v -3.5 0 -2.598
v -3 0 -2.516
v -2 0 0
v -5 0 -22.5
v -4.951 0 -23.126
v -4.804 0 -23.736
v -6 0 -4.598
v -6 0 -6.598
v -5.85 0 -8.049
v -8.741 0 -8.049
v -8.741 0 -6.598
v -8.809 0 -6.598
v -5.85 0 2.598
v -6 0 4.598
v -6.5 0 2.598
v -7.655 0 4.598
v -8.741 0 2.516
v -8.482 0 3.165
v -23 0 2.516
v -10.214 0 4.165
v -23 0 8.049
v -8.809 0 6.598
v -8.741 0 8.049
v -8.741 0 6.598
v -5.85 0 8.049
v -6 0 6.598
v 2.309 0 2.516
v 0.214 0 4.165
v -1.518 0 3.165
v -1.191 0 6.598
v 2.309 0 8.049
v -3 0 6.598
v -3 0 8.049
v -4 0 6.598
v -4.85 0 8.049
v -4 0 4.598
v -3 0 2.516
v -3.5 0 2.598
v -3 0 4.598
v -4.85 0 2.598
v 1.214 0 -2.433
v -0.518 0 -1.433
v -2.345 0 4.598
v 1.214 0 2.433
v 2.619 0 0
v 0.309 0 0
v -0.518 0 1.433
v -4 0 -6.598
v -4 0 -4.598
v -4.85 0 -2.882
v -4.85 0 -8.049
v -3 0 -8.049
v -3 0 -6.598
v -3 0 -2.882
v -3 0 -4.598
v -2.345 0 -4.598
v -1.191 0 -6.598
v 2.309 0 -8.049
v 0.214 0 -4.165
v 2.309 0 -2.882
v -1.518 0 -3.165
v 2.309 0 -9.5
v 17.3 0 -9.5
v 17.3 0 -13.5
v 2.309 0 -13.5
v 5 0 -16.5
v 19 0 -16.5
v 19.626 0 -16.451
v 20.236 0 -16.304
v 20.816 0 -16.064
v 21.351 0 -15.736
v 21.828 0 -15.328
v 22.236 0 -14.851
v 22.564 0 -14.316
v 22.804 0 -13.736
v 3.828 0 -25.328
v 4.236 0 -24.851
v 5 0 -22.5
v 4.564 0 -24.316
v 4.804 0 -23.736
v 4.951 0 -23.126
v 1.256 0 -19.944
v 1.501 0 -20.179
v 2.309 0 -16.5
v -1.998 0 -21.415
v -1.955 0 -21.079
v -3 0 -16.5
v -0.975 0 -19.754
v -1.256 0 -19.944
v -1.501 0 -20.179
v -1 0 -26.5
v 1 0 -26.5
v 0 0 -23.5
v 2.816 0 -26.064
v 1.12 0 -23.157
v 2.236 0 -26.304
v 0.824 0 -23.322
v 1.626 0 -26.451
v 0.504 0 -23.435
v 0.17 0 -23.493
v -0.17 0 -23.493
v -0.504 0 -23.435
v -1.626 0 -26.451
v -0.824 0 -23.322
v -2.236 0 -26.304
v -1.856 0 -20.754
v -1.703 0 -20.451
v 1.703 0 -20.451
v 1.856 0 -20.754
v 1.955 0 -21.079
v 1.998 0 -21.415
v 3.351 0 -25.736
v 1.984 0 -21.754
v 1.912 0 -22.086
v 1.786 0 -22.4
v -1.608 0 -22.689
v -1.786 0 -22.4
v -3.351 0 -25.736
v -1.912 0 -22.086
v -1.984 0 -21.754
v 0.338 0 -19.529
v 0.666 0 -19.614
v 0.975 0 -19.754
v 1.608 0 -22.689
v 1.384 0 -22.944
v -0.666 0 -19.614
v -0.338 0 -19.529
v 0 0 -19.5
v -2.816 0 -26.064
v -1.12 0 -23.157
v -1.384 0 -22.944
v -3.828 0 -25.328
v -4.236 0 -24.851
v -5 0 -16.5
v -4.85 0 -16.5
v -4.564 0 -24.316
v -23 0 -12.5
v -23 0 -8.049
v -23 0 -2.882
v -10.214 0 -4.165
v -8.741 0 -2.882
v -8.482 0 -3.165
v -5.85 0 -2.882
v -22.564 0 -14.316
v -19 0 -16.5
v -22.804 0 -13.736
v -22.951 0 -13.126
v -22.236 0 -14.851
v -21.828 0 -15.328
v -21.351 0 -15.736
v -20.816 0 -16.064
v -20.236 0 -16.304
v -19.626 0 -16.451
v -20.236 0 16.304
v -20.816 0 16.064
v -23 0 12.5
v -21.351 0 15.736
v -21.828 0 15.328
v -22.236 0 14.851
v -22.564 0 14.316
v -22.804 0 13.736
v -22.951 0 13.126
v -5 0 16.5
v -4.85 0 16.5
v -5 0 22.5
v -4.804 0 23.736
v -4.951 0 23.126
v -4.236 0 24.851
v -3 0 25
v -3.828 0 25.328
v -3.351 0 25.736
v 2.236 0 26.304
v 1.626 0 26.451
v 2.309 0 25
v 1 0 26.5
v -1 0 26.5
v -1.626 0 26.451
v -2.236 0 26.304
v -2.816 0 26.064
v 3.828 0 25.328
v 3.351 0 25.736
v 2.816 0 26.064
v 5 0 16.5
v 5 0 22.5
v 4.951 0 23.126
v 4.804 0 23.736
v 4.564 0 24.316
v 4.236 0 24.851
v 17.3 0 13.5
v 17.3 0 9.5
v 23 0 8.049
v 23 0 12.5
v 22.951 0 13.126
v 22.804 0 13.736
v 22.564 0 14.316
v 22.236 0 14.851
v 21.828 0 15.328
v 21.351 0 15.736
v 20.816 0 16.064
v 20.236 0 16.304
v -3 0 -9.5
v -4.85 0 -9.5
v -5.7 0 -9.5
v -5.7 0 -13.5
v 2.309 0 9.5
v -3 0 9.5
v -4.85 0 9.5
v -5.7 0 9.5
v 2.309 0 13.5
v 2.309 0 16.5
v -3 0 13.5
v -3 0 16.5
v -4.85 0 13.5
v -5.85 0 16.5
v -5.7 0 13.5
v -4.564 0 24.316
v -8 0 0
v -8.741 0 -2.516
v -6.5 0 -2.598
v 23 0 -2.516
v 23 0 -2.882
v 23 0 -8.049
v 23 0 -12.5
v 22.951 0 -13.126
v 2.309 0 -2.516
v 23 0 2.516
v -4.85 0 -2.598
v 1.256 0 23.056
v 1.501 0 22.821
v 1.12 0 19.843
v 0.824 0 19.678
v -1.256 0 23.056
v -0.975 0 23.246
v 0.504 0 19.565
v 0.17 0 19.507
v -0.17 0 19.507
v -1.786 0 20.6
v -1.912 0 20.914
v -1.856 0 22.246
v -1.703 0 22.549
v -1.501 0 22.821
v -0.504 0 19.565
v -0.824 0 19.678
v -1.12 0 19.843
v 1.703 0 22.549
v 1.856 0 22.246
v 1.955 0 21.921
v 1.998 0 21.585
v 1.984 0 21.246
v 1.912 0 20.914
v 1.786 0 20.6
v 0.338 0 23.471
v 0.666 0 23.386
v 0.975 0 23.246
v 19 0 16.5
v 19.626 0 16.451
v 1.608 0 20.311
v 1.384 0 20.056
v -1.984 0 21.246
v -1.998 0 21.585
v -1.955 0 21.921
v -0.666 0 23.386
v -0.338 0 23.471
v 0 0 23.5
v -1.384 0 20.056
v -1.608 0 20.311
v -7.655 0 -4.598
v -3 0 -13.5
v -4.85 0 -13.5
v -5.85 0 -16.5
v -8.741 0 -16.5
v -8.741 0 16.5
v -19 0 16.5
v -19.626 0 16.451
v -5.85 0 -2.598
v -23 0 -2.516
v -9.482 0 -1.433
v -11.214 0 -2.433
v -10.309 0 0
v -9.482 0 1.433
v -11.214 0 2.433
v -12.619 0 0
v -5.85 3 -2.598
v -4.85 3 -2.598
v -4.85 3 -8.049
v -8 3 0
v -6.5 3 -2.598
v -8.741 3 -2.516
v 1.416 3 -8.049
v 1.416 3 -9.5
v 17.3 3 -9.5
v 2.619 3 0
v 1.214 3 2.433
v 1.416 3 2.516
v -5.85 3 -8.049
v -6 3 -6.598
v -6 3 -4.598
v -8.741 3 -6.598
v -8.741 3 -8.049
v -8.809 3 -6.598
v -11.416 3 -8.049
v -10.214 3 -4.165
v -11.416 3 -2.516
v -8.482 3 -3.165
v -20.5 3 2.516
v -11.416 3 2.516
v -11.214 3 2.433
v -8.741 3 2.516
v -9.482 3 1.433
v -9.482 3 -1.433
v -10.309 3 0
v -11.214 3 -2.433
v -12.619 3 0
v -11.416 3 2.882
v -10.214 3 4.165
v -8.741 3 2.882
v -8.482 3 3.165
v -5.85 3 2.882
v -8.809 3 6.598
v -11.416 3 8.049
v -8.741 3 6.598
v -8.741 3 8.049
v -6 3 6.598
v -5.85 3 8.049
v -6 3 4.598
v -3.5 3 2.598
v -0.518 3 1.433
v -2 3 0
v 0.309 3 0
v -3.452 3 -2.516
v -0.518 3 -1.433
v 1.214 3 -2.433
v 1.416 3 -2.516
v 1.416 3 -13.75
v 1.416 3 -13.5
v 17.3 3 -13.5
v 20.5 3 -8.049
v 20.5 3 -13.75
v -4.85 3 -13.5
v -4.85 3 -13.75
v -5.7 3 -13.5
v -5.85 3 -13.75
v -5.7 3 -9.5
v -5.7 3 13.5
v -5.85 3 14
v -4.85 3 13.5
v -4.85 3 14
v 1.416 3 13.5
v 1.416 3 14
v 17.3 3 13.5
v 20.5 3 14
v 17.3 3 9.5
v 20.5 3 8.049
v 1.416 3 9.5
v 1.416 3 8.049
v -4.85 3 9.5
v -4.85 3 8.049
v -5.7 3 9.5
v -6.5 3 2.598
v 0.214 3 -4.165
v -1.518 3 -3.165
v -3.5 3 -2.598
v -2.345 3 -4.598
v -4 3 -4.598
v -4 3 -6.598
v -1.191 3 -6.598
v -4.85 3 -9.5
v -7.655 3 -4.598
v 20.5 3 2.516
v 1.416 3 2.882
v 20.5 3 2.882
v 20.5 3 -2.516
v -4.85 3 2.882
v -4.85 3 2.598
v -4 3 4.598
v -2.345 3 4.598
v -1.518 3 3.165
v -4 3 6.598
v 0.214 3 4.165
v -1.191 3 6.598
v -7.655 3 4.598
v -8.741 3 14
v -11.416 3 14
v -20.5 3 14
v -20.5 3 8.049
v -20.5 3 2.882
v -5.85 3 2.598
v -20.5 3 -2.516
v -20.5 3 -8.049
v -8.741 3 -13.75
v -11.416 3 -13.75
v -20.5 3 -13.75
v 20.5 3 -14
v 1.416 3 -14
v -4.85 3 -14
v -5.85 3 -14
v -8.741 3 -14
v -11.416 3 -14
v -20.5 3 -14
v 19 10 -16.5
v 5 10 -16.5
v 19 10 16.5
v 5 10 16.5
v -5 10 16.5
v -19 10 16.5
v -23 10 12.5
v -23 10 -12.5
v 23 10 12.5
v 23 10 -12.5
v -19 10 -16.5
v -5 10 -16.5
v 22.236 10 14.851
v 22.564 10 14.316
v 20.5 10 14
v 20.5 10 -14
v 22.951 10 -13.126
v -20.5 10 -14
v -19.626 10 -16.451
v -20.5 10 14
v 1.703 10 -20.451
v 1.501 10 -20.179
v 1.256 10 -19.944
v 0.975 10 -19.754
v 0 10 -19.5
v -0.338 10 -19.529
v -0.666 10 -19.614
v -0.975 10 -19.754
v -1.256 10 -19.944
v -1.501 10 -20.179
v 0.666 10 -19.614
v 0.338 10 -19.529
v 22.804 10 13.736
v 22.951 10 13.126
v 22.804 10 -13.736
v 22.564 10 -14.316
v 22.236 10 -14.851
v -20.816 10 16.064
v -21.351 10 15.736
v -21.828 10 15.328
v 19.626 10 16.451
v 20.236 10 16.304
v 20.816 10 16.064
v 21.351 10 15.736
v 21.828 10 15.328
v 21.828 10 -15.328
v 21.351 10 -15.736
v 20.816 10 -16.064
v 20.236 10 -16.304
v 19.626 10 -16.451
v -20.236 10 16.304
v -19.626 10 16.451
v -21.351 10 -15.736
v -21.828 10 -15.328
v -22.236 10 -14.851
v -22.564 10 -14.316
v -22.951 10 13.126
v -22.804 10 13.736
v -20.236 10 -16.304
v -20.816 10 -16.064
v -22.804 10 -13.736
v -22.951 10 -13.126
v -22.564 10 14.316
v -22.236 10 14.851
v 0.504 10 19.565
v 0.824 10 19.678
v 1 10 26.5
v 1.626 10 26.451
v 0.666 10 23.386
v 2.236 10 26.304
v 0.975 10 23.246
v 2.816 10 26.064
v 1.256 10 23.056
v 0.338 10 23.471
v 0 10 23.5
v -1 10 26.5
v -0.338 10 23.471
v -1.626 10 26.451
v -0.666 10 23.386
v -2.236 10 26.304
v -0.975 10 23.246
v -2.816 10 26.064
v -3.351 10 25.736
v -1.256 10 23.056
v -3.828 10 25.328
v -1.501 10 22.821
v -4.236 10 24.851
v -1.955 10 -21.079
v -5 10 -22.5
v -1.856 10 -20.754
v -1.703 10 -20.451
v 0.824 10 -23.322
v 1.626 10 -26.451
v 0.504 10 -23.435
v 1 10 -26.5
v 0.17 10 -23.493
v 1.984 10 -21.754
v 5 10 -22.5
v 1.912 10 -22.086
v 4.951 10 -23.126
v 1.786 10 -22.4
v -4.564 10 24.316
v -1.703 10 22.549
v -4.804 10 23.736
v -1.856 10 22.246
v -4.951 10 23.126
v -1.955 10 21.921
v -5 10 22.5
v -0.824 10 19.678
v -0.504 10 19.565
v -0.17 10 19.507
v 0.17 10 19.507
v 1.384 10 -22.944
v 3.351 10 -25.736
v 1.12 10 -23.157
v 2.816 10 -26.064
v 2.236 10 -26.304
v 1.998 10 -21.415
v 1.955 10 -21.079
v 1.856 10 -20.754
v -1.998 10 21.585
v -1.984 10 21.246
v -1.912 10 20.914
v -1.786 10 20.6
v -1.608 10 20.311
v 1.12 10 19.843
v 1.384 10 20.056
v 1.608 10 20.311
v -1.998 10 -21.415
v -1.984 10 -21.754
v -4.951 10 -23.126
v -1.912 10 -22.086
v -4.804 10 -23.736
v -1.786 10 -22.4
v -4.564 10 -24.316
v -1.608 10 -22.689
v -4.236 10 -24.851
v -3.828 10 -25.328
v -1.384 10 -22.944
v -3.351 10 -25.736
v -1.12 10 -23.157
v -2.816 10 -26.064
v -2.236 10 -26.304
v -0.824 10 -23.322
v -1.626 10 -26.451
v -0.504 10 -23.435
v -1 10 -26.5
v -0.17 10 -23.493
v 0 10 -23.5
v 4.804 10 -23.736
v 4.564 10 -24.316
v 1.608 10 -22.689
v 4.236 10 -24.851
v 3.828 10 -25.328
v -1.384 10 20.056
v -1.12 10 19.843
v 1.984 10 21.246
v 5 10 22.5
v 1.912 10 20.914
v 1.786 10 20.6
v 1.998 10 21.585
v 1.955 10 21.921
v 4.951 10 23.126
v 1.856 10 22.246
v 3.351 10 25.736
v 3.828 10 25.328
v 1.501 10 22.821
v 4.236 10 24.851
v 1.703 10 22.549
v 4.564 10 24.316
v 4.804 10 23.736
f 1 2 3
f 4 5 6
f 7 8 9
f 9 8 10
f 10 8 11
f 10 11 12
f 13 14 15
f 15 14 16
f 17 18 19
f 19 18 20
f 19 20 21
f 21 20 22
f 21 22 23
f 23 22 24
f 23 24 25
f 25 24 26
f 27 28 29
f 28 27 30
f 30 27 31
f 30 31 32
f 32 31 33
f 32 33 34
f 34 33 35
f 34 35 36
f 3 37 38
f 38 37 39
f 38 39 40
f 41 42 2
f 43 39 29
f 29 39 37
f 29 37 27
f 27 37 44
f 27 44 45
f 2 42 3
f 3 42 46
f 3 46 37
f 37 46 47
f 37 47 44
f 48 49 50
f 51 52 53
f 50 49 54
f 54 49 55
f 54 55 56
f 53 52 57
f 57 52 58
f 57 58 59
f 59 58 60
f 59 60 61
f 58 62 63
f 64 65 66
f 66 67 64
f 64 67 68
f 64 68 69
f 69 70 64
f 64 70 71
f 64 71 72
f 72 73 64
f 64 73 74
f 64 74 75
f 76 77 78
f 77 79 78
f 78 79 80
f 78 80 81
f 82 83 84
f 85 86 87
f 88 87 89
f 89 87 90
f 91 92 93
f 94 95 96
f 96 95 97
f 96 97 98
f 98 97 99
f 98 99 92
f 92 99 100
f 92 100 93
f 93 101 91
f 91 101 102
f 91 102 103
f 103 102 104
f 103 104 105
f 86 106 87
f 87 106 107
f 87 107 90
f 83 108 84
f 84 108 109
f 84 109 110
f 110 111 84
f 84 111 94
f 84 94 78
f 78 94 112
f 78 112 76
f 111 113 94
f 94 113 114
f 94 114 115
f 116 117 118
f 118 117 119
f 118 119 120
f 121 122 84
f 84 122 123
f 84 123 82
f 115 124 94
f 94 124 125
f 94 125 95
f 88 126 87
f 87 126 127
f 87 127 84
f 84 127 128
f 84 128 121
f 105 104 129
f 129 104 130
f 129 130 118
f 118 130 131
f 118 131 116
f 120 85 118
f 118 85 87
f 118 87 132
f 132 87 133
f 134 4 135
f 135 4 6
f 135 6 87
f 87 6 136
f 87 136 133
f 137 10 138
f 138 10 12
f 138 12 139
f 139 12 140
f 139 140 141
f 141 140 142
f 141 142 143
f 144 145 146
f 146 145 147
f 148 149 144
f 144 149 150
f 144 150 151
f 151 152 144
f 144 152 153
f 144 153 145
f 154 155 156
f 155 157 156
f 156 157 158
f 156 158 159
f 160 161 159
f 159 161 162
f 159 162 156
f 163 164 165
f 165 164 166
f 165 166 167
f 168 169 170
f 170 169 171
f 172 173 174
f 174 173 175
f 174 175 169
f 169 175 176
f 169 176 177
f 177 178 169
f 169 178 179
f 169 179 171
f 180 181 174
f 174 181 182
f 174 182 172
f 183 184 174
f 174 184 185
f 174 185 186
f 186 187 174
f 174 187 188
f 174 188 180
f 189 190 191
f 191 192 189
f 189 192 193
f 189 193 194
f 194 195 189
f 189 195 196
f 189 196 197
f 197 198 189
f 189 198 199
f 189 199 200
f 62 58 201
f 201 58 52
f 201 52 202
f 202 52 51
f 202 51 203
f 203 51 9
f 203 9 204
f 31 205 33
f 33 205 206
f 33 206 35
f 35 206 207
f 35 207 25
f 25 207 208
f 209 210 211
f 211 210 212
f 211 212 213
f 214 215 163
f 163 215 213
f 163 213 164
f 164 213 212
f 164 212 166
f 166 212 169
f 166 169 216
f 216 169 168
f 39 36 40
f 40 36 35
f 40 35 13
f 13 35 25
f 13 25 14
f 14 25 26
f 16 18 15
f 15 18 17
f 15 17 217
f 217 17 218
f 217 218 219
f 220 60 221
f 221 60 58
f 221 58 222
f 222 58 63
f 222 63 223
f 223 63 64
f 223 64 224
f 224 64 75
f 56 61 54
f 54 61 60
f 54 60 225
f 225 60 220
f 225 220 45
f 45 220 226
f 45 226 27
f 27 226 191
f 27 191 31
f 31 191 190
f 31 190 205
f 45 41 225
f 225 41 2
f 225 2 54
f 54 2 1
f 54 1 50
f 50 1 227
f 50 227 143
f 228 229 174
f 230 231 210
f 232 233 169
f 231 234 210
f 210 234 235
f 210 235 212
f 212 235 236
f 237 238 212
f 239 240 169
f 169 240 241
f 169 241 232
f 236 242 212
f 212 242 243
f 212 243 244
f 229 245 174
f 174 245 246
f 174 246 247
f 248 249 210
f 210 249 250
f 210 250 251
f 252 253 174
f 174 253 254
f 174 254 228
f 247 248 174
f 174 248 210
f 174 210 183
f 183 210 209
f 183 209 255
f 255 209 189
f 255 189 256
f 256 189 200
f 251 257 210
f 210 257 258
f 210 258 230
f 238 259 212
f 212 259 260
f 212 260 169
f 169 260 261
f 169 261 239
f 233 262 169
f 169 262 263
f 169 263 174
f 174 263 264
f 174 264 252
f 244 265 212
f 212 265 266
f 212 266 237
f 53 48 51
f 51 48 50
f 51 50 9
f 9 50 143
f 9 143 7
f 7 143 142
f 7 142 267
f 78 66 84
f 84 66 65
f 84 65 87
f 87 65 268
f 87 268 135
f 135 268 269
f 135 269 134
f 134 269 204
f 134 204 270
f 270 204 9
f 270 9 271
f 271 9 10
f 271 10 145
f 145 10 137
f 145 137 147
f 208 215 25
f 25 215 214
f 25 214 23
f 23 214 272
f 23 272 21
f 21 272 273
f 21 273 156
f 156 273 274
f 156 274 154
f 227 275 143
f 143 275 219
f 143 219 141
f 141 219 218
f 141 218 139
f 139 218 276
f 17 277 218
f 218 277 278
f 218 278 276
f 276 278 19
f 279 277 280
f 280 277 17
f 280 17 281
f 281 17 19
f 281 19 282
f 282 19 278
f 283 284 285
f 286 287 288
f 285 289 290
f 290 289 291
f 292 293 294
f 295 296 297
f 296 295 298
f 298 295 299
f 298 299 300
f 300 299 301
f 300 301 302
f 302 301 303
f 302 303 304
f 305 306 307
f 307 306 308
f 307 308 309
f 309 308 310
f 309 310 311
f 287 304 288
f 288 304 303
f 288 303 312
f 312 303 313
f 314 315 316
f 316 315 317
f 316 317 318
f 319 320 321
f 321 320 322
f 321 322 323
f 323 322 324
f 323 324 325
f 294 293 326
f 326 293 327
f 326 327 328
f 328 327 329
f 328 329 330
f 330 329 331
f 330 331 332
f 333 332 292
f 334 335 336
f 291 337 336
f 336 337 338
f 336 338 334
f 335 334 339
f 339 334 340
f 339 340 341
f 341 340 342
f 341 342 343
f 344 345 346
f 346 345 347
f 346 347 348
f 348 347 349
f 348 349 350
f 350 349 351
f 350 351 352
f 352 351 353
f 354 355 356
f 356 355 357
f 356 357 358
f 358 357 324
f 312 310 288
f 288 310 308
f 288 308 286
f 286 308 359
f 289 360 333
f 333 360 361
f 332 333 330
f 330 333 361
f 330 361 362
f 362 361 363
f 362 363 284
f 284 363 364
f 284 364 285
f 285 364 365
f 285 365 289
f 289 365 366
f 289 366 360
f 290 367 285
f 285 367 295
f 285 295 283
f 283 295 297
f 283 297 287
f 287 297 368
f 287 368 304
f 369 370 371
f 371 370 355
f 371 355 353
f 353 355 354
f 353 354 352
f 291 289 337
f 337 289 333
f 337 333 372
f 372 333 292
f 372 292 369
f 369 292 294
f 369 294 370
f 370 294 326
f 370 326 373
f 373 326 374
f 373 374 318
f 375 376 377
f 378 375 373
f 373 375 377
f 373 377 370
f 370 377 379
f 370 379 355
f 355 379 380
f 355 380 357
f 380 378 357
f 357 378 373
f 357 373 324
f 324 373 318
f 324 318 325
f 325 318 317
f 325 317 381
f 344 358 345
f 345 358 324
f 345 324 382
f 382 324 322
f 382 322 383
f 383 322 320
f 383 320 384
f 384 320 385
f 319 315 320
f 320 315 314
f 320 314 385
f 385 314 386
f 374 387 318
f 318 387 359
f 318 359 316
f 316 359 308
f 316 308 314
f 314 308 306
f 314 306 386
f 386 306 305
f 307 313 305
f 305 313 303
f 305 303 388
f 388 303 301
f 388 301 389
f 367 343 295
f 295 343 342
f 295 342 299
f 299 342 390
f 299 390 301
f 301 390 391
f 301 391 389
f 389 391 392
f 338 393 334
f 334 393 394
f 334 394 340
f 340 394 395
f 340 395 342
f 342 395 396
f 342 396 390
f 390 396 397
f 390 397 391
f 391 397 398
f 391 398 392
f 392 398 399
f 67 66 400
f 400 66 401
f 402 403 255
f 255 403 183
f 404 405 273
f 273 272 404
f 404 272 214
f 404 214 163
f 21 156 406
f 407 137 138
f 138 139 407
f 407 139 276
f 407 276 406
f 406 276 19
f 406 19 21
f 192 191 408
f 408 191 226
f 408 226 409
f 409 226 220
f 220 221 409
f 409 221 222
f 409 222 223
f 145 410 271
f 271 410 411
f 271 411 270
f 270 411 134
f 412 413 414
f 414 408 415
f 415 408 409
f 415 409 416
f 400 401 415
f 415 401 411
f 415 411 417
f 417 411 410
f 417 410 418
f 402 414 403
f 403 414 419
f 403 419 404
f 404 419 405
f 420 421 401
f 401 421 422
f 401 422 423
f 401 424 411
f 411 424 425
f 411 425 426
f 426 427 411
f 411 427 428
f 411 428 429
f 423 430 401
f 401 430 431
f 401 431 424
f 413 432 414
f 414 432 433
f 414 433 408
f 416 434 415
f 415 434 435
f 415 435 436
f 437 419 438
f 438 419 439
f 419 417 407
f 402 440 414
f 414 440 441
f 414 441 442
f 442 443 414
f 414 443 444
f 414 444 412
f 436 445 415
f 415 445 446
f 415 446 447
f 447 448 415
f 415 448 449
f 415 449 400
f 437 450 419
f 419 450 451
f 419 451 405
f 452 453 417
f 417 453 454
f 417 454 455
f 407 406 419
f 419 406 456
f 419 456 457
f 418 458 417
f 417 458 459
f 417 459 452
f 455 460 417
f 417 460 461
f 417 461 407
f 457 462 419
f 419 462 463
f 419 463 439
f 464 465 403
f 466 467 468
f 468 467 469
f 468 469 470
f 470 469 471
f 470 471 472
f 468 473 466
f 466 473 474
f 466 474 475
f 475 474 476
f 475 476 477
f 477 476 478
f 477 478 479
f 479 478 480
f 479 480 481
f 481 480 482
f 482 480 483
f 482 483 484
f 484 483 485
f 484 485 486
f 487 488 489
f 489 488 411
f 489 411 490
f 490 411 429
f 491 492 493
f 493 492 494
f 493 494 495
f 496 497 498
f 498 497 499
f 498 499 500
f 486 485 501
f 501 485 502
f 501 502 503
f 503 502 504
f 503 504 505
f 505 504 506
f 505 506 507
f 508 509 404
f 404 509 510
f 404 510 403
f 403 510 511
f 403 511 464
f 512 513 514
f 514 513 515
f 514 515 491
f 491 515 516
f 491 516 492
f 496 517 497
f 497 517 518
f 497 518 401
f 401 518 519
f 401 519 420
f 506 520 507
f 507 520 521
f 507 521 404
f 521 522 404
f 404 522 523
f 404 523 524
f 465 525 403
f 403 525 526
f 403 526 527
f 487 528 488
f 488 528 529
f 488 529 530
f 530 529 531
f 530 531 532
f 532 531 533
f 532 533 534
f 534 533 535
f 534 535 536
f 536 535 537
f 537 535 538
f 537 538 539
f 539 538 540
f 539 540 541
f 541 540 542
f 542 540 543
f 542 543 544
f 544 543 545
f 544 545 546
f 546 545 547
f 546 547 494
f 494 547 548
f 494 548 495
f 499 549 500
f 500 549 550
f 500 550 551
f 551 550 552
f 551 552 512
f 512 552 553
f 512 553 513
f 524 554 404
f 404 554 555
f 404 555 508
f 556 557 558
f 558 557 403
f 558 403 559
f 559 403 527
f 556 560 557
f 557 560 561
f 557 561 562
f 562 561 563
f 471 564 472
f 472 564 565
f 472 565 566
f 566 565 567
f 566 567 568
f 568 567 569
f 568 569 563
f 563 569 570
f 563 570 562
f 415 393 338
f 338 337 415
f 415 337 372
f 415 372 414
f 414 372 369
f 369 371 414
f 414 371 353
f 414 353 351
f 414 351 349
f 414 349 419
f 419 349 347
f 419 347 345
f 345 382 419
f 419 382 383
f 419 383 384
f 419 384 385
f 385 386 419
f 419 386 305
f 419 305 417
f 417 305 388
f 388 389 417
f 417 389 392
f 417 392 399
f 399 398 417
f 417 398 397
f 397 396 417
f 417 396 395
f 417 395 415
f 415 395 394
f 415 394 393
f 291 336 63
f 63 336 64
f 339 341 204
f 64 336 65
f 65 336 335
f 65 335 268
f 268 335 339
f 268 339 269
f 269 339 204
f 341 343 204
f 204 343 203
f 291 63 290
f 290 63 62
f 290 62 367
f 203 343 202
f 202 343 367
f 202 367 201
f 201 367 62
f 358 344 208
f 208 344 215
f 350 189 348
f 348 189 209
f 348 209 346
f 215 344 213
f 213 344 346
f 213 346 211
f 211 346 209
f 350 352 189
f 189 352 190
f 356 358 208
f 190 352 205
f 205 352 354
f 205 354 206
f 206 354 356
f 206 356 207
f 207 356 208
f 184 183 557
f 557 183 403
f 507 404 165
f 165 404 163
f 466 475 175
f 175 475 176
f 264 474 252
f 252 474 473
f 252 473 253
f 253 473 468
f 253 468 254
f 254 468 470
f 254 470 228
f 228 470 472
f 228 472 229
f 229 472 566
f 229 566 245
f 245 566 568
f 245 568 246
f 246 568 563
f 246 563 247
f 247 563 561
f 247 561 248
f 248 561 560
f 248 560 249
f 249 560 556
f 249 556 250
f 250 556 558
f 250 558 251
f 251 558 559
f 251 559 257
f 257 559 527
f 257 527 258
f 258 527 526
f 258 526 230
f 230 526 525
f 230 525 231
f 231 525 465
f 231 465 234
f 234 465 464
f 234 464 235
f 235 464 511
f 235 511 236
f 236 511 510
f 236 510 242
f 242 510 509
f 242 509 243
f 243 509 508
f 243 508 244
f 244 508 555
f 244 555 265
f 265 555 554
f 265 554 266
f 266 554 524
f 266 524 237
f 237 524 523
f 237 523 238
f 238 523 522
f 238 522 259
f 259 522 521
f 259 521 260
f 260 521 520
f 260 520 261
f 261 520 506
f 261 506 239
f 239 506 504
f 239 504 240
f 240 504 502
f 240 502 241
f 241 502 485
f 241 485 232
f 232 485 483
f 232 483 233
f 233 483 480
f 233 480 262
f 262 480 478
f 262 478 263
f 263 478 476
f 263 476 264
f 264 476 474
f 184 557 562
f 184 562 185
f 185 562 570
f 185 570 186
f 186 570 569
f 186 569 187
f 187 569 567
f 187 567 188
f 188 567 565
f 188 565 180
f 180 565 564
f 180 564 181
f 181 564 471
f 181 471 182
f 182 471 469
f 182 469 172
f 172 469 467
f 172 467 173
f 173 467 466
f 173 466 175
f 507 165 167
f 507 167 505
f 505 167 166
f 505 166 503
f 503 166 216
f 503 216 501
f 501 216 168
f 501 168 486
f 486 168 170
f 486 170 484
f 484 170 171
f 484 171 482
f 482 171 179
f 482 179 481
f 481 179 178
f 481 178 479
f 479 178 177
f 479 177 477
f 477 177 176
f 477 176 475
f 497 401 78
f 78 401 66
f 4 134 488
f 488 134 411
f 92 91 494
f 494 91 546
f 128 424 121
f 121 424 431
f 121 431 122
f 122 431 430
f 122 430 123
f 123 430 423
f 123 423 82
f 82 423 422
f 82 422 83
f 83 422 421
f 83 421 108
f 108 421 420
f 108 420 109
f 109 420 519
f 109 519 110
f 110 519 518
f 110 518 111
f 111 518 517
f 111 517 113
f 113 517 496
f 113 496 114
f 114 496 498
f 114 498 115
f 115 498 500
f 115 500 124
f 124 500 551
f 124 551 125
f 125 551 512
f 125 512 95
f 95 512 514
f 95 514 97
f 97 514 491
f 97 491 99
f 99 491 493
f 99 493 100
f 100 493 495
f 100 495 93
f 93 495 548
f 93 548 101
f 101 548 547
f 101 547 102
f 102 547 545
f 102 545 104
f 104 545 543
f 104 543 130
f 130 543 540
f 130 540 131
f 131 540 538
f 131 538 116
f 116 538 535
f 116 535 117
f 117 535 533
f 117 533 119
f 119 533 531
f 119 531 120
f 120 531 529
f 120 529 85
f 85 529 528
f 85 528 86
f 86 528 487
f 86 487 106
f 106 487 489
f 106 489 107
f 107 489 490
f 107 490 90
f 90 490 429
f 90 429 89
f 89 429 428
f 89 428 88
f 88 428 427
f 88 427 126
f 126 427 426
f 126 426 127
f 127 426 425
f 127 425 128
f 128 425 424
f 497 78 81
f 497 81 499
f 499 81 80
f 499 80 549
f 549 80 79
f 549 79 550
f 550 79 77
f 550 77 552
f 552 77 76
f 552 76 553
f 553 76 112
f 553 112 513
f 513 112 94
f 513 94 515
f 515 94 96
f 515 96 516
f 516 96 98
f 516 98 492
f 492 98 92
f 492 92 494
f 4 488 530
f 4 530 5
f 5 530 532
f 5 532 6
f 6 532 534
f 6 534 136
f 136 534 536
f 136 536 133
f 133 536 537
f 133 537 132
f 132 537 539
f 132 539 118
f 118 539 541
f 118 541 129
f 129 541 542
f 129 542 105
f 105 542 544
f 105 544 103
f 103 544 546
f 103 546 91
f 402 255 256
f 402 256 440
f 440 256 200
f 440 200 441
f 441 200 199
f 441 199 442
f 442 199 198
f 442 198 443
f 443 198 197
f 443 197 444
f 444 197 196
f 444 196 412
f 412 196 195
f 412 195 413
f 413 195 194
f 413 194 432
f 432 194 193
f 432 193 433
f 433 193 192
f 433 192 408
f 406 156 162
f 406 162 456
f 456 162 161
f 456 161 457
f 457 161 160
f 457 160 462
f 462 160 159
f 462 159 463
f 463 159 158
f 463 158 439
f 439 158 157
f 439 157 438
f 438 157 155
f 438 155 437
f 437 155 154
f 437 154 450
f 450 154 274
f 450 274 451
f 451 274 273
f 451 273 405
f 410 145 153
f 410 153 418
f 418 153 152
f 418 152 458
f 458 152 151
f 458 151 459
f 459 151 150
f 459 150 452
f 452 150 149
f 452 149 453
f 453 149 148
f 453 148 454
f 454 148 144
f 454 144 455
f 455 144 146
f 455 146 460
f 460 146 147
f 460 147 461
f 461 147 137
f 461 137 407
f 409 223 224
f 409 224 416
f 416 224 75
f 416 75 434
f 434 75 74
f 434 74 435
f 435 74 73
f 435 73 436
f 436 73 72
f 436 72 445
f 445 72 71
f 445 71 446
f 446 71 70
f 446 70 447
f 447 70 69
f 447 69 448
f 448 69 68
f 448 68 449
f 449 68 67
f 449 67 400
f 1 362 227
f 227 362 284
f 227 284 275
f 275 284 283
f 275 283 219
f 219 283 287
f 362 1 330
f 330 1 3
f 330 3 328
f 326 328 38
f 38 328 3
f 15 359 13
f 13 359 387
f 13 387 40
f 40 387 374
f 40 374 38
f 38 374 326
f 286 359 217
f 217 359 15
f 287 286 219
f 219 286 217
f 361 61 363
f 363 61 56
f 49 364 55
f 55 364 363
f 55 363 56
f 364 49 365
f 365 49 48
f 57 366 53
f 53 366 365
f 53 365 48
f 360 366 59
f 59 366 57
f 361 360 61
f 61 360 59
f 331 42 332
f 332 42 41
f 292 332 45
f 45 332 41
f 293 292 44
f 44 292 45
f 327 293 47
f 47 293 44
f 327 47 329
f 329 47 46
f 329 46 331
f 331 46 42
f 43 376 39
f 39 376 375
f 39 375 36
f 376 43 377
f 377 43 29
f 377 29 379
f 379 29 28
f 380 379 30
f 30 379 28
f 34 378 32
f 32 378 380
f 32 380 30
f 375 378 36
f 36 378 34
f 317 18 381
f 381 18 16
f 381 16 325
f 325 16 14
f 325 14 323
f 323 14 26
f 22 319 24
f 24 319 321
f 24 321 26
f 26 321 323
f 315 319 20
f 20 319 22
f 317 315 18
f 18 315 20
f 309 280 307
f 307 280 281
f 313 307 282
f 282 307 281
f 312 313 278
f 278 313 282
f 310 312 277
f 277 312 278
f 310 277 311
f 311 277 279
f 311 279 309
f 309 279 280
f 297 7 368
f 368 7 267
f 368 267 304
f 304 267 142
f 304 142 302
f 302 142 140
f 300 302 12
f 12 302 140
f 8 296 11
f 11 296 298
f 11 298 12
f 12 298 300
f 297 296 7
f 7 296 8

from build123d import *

# Parameters (mm, degrees)
BASE_W               = 46
BASE_H               = 33
SHELL_DEPTH          = 10
SHELLHOLE_W          = 41
SHELLHOLE_H          = 28
HOLE_DEPTH           = 7
PINHOLES_W           = 23
PINHOLES_H           = 4
PINS_DEPTH           = 3
SKETCH10_W           = 10
SKETCH10_H           = 10
BOSS_EXTRUDE3_DEPTH  = 10
SKETCH11_R           = 2
CUT_EXTRUDE3_DEPTH   = 10
FILLET1_R            = 4
FILLET1_OF_MIRROR1_R = 4
FILLET2_R            = 4
AIR1_DEPTH           = 10


with BuildPart() as part:
    # Base → Shell (new body)
    with BuildSketch(Plane(origin=(0, 0, 0), x_dir=(1, 0, 0), z_dir=(0, 1, 0))):
        Rectangle(BASE_W, BASE_H)
    extrude(amount=SHELL_DEPTH)

    # ShellHole → Hole (cut)
    with BuildSketch(Plane(origin=(0, 10, 0), x_dir=(1, 0, 0), z_dir=(0, 1, 0))):
        Rectangle(SHELLHOLE_W, SHELLHOLE_H)
    extrude(amount=-HOLE_DEPTH, mode=Mode.SUBTRACT)

    # PinHoles → Pins (cut)
    with BuildSketch(Plane(origin=(0, 0, 0), x_dir=(-1, 0, 0), z_dir=(0, -1, 0))):
        with Locations((-5.8, -11.5)):
            Rectangle(PINHOLES_W, PINHOLES_H)
        with Locations((-5.8, 11.5)):
            Rectangle(PINHOLES_W, PINHOLES_H)
    extrude(amount=-PINS_DEPTH, mode=Mode.SUBTRACT)

    # Sketch10 → Boss-Extrude3 (add)
    with BuildSketch(Plane.XY.offset(16.5)):
        with Locations((0, 5)):
            Rectangle(SKETCH10_W, SKETCH10_H)
    boss_extrude3 = extrude(amount=BOSS_EXTRUDE3_DEPTH)

    # Sketch11 → Cut-Extrude3 (cut)
    with BuildSketch(Plane(origin=(0, 10, 0), x_dir=(1, 0, 0), z_dir=(0, 1, 0))):
        with Locations(Location((0, -21.5, 0), (0, 0, 270))):
            Circle(SKETCH11_R)
    cut_extrude3 = extrude(amount=-CUT_EXTRUDE3_DEPTH, mode=Mode.SUBTRACT)

    # Fillet1
    fillet1_edges = [part.edges().sort_by_distance(p)[0] for p in [
        (5, 5, 26.5),
        (-5, 5, 26.5),
    ]]
    fillet(fillet1_edges, radius=FILLET1_R)

    # Mirror1: Boss-Extrude3, Cut-Extrude3 across plane
    add(boss_extrude3.mirror(Plane.XY))
    add(cut_extrude3.mirror(Plane.XY), mode=Mode.SUBTRACT)

    # Fillet1 of Mirror1
    fillet1_of_mirror1_edges = [part.edges().sort_by_distance(p)[0] for p in [
        (5, 5, -26.5),
        (-5, 5, -26.5),
    ]]
    fillet(fillet1_of_mirror1_edges, radius=FILLET1_OF_MIRROR1_R)

    # Fillet2
    fillet2_edges = [part.edges().sort_by_distance(p)[0] for p in [
        (-23, 5, -16.5),
        (23, 5, -16.5),
        (23, 5, 16.5),
        (-23, 5, 16.5),
    ]]
    fillet(fillet2_edges, radius=FILLET2_R)

    # AirHole → Air1 (cut)
    with BuildSketch(Plane(origin=(0, 3, 0), x_dir=(1, 0, 0), z_dir=(0, 1, 0))):
        Polygon((-3.5, 2.598076211), (-6.5, 2.598076211), (-8, 0), (-6.5, -2.598076211), (-3.5, -2.598076211), (-2, 0), align=None)
        Polygon((-10.214101615, 4.165063509), (-8.482050808, 3.165063509), (-7.654700538, 4.598076211), (-6, 4.598076211), (-6, 6.598076211), (-8.809401077, 6.598076211), align=None)
        Polygon((-11.214101615, -2.433012702), (-9.482050808, -1.433012702), (-10.309401077, 0), (-9.482050808, 1.433012702), (-11.214101615, 2.433012702), (-12.618802154, 0), align=None)
        Polygon((-7.654700538, -4.598076211), (-8.482050808, -3.165063509), (-10.214101615, -4.165063509), (-8.809401077, -6.598076211), (-6, -6.598076211), (-6, -4.598076211), align=None)
        Polygon((-2.345299462, -4.598076211), (-4, -4.598076211), (-4, -6.598076211), (-1.190598923, -6.598076211), (0.214101615, -4.165063509), (-1.517949192, -3.165063509), align=None)
        Polygon((0.309401077, 0), (-0.517949192, -1.433012702), (1.214101615, -2.433012702), (2.618802154, 0), (1.214101615, 2.433012702), (-0.517949192, 1.433012702), align=None)
        Polygon((-4, 6.598076211), (-4, 4.598076211), (-2.345299462, 4.598076211), (-1.517949192, 3.165063509), (0.214101615, 4.165063509), (-1.190598923, 6.598076211), align=None)
    extrude(amount=-AIR1_DEPTH, mode=Mode.SUBTRACT)


solid = part.part
